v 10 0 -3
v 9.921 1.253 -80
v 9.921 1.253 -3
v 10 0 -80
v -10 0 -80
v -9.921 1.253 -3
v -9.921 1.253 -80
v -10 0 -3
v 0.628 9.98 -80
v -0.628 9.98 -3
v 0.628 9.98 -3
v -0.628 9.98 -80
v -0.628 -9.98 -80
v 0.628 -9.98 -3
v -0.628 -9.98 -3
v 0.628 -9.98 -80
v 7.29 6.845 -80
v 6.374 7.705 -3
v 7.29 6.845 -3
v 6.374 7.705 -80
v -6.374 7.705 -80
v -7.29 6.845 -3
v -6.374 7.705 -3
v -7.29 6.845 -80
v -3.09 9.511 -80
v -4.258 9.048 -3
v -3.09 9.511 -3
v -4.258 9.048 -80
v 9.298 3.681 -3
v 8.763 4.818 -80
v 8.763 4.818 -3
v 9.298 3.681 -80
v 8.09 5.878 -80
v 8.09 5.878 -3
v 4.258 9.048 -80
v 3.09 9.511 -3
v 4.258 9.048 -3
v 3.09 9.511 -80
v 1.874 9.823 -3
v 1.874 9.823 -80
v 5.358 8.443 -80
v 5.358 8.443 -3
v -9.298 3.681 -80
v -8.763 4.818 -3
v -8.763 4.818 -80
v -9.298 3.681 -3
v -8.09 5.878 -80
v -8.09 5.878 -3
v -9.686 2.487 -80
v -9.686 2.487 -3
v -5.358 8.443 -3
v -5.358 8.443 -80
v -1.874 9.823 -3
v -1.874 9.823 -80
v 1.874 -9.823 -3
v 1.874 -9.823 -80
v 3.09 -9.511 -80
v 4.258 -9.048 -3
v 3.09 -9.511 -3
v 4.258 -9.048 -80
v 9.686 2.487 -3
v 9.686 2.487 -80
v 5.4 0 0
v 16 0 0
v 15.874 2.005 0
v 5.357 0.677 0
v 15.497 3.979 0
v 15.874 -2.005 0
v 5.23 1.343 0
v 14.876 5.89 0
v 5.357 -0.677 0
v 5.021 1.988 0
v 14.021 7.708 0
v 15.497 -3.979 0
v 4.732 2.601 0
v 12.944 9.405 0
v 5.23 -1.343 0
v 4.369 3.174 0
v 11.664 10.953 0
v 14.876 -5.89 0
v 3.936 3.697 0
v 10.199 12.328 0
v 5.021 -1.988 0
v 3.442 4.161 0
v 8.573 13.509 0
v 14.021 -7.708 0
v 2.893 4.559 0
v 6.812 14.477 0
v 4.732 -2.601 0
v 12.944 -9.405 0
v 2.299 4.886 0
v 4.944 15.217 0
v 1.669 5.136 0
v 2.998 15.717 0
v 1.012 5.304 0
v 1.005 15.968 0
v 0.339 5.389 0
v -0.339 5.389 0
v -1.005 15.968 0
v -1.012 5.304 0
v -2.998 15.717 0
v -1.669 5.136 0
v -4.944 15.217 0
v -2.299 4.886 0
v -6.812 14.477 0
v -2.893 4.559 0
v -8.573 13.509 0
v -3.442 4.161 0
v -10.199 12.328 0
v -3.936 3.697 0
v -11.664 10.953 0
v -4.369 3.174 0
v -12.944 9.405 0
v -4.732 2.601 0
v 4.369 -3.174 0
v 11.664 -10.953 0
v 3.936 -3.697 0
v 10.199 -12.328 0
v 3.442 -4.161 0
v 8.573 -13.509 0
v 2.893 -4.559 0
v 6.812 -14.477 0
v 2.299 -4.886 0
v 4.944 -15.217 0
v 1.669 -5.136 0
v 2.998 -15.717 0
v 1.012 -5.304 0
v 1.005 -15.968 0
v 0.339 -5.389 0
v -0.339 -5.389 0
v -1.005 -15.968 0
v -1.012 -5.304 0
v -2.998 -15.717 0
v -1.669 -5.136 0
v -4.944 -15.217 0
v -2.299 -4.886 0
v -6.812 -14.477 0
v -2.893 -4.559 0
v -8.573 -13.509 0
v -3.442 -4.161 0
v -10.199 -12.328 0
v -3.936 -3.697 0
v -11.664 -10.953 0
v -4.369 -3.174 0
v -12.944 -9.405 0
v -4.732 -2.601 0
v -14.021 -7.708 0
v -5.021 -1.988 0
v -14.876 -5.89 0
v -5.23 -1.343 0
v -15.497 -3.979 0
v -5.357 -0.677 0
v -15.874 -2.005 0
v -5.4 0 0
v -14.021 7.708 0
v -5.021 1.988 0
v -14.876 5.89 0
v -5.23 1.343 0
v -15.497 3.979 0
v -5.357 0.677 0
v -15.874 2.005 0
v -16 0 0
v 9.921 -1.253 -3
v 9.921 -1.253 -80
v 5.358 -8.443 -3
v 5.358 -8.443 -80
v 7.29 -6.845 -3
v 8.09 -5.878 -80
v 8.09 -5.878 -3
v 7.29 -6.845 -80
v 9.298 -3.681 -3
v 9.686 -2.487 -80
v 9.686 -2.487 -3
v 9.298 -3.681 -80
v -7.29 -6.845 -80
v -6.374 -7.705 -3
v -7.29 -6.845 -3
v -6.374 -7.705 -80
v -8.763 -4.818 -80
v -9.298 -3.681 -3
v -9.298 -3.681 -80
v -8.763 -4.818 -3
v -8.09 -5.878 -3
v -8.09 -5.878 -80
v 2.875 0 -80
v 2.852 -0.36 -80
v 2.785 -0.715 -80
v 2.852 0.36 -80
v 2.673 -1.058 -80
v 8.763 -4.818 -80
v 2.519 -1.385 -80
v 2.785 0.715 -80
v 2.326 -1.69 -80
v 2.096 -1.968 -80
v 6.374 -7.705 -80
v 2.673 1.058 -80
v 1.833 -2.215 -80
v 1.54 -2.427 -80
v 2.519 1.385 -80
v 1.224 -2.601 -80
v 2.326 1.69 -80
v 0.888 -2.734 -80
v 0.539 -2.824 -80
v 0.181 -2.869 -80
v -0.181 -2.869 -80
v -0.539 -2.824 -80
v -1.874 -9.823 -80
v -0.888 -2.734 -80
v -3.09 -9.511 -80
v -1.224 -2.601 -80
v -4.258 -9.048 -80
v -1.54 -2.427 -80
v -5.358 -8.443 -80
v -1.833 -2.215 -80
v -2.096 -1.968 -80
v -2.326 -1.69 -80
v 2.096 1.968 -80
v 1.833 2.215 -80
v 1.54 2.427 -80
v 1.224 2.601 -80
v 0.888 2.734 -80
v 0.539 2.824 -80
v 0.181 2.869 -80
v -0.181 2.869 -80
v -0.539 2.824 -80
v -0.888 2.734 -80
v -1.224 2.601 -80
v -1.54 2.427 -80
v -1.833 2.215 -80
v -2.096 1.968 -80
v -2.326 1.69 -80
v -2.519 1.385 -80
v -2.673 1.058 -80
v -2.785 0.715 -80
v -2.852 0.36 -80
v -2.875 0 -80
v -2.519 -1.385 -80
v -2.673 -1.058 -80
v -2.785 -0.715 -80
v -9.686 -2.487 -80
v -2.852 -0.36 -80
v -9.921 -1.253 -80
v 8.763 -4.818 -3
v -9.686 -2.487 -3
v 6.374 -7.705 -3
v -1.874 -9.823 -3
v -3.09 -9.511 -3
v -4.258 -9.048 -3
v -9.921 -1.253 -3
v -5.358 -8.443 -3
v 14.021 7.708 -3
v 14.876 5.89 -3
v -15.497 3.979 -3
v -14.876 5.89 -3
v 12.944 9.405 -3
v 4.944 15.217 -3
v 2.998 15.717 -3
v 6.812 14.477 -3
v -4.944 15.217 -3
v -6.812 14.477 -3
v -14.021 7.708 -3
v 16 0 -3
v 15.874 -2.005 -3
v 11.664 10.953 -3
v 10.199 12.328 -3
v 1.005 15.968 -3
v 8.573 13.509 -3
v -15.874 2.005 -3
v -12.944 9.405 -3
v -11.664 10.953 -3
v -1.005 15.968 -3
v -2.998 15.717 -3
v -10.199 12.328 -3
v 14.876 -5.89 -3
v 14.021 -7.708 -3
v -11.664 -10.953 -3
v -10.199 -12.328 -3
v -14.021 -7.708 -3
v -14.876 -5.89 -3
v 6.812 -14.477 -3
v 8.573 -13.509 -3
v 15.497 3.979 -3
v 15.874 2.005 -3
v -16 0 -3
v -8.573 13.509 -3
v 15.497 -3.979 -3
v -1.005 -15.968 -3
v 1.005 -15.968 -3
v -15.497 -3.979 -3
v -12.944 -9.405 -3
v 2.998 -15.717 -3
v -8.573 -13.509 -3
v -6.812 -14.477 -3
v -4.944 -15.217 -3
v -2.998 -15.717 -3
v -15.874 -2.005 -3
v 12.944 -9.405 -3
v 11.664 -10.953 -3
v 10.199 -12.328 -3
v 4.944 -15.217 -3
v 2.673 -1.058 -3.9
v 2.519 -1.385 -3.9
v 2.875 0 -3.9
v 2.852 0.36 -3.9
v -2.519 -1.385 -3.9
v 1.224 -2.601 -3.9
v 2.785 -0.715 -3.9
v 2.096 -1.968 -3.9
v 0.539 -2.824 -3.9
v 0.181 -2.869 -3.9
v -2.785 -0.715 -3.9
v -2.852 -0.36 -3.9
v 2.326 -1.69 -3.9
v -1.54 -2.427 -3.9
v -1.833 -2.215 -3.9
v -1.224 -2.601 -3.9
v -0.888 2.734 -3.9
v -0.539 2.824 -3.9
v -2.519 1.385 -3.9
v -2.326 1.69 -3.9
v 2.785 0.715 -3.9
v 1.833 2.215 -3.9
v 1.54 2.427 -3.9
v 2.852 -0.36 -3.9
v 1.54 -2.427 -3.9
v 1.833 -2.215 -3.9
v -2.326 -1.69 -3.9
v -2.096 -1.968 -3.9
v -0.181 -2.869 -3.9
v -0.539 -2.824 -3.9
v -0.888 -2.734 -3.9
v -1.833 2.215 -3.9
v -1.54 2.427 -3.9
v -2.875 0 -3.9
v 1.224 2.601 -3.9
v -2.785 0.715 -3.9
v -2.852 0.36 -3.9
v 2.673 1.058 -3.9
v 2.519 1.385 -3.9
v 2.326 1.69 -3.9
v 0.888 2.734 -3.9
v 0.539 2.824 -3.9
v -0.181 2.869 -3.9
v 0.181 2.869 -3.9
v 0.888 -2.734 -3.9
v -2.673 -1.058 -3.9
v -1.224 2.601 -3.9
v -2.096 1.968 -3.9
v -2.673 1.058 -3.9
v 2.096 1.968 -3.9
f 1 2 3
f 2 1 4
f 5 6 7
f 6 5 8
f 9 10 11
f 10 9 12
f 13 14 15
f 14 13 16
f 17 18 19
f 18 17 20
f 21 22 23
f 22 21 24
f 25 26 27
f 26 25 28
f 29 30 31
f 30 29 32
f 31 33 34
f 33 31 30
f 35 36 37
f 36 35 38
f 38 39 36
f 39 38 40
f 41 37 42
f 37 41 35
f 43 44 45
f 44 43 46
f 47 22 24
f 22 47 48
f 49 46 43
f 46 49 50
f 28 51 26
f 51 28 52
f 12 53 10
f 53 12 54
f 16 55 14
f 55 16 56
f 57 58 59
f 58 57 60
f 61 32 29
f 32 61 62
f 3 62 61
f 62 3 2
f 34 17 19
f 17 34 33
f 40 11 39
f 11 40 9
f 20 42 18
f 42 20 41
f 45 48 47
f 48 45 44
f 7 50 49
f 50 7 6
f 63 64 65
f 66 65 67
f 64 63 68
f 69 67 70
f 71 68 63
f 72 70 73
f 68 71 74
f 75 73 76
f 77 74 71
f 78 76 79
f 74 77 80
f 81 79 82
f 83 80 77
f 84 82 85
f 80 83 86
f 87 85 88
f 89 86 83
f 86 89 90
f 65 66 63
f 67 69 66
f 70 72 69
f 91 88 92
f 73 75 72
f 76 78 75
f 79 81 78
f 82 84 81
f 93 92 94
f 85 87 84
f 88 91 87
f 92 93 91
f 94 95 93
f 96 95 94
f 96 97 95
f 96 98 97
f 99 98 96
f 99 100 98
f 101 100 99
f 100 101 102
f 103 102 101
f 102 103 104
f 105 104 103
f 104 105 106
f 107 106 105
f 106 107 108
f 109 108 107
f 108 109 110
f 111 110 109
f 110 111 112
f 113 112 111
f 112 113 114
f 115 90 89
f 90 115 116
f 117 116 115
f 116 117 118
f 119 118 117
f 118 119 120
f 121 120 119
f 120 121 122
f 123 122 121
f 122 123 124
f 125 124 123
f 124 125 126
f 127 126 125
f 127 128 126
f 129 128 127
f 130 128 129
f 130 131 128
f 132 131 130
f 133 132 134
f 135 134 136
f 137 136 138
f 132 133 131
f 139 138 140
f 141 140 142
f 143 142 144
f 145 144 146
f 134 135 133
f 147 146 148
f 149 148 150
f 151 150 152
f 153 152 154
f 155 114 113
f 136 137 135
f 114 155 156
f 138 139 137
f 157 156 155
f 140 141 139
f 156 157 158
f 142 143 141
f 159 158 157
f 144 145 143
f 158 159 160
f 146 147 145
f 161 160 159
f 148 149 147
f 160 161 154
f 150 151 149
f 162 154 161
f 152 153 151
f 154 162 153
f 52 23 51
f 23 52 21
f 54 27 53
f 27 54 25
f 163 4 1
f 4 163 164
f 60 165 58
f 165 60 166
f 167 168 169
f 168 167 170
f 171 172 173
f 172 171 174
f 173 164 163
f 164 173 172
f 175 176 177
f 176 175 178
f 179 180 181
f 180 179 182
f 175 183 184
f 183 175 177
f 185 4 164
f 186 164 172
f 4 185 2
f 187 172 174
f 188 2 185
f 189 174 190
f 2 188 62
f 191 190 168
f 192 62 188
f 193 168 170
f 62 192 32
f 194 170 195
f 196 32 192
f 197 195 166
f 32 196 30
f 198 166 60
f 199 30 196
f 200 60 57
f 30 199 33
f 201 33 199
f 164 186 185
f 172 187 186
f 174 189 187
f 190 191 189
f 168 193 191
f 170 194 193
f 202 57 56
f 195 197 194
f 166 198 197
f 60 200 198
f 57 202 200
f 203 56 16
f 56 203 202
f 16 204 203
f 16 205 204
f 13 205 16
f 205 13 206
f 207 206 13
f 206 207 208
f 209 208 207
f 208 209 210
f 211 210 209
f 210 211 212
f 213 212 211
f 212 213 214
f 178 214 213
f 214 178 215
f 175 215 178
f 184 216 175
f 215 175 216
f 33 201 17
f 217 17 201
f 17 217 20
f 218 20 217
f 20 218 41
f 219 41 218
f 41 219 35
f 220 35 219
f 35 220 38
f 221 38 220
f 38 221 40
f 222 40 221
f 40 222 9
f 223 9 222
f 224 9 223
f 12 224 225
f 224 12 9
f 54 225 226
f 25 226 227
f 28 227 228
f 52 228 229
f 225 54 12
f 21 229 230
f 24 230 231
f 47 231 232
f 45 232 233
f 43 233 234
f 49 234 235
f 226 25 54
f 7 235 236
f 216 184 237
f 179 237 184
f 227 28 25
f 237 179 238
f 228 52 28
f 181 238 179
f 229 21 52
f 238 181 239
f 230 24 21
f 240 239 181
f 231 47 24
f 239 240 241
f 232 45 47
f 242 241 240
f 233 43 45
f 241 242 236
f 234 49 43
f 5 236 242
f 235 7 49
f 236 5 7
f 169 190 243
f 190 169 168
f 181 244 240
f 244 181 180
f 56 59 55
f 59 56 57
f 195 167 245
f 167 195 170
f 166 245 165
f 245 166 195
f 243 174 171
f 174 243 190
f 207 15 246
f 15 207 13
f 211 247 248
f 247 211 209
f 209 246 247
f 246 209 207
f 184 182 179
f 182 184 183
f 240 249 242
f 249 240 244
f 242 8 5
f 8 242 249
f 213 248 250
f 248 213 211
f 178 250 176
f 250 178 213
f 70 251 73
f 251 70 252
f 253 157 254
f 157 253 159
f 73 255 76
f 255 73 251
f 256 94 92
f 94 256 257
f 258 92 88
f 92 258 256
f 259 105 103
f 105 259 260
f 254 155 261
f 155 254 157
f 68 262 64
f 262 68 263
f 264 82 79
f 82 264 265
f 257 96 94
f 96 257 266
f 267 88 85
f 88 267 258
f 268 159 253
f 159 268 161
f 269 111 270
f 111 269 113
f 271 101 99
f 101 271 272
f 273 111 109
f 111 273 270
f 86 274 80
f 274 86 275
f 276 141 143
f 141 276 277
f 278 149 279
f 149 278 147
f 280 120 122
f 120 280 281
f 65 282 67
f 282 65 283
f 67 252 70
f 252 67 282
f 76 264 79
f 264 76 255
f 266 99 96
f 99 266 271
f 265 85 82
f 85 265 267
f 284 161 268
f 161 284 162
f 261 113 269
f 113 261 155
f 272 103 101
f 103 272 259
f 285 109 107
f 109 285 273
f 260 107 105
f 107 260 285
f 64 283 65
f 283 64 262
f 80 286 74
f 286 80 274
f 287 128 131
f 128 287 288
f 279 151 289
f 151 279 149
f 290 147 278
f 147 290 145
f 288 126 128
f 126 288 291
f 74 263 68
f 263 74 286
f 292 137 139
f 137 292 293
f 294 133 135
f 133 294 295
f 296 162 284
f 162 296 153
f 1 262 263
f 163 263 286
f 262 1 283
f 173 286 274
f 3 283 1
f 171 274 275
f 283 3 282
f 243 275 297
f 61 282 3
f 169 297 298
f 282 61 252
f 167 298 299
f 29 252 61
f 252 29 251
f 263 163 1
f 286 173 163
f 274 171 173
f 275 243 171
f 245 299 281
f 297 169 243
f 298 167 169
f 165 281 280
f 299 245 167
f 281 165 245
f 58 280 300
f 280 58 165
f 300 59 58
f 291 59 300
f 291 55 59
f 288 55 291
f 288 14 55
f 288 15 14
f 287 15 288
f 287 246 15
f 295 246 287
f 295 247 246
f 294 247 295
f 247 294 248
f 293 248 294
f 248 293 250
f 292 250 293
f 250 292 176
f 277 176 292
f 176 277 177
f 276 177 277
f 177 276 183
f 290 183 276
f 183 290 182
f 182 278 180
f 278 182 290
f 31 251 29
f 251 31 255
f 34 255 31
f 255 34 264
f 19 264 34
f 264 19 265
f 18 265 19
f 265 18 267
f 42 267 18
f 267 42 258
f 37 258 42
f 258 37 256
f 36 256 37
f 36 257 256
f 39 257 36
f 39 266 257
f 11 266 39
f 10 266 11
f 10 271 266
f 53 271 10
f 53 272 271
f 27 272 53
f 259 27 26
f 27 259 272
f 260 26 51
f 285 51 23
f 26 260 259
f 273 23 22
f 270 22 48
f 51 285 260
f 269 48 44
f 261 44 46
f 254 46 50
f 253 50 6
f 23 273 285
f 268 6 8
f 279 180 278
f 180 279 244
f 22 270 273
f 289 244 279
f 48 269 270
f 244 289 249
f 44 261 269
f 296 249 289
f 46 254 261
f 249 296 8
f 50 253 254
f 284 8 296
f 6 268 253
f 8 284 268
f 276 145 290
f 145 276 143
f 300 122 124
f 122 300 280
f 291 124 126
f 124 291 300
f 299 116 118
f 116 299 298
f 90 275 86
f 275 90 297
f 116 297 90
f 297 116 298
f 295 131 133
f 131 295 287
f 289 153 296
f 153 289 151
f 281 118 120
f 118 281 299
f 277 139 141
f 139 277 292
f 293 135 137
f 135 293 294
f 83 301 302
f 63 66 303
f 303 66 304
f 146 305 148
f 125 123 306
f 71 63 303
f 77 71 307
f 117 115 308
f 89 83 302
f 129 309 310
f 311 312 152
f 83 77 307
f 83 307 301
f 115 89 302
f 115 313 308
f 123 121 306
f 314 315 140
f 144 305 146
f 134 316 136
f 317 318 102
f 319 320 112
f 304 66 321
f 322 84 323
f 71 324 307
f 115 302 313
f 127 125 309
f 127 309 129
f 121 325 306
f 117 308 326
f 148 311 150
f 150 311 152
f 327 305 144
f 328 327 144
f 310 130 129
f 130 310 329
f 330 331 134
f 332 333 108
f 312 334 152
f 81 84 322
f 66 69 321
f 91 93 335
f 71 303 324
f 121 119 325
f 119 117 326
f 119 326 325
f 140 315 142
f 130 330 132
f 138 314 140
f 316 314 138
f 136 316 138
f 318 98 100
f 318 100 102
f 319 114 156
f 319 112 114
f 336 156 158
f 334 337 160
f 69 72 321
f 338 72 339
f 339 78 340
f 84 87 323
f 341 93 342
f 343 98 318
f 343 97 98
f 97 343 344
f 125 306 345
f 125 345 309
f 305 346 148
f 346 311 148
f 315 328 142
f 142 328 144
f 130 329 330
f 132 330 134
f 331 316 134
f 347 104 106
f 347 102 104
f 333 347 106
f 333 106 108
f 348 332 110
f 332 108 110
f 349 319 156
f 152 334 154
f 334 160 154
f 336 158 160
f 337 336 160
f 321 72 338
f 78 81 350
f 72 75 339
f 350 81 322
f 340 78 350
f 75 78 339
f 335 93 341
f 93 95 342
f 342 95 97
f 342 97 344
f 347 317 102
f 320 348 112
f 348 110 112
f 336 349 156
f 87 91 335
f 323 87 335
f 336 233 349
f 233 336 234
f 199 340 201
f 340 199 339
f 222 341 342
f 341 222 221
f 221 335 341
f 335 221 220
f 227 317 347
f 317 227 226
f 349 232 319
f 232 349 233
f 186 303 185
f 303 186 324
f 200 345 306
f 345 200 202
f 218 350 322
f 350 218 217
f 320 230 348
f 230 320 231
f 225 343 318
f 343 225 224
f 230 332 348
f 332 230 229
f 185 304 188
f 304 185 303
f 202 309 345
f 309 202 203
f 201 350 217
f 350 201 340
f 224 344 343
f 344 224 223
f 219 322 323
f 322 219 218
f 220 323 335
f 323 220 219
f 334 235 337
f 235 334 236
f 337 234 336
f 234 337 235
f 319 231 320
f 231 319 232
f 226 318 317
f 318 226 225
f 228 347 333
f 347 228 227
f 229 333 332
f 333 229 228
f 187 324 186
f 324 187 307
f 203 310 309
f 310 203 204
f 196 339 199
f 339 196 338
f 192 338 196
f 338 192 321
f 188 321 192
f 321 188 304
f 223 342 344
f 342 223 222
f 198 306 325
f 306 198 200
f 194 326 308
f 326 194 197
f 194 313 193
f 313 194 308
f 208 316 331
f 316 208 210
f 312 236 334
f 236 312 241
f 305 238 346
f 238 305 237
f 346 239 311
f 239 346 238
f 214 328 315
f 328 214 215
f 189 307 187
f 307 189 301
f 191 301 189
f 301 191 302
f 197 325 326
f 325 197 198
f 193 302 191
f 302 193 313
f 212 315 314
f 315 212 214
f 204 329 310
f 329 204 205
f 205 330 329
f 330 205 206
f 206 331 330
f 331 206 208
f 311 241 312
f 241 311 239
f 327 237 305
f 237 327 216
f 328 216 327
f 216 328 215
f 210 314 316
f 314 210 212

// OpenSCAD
$fn = 50;


difference() {
	union() {
		translate(v = [0, 0, -80.0000000000]) {
			cylinder(h = 80, r = 10.0000000000);
		}
		translate(v = [0, 0, -3.0000000000]) {
			cylinder(h = 3, r = 16.0000000000);
		}
	}
	union() {
		translate(v = [0, 0, 0]) {
			rotate(a = [0, 0, 0]) {
				difference() {
					union() {
						#translate(v = [0, 0, -80.0000000000]) {
							cylinder(h = 80, r = 2.6000000000);
						}
						#translate(v = [0, 0, -3.9000000000]) {
							cylinder(h = 3.9000000000, r1 = 2.8750000000, r2 = 5.4000000000);
						}
						#translate(v = [0, 0, -80.0000000000]) {
							cylinder(h = 80, r = 2.8750000000);
						}
						#translate(v = [0, 0, -80.0000000000]) {
							cylinder(h = 80, r = 2.6000000000);
						}
					}
					union();
				}
			}
		}
	}
}
